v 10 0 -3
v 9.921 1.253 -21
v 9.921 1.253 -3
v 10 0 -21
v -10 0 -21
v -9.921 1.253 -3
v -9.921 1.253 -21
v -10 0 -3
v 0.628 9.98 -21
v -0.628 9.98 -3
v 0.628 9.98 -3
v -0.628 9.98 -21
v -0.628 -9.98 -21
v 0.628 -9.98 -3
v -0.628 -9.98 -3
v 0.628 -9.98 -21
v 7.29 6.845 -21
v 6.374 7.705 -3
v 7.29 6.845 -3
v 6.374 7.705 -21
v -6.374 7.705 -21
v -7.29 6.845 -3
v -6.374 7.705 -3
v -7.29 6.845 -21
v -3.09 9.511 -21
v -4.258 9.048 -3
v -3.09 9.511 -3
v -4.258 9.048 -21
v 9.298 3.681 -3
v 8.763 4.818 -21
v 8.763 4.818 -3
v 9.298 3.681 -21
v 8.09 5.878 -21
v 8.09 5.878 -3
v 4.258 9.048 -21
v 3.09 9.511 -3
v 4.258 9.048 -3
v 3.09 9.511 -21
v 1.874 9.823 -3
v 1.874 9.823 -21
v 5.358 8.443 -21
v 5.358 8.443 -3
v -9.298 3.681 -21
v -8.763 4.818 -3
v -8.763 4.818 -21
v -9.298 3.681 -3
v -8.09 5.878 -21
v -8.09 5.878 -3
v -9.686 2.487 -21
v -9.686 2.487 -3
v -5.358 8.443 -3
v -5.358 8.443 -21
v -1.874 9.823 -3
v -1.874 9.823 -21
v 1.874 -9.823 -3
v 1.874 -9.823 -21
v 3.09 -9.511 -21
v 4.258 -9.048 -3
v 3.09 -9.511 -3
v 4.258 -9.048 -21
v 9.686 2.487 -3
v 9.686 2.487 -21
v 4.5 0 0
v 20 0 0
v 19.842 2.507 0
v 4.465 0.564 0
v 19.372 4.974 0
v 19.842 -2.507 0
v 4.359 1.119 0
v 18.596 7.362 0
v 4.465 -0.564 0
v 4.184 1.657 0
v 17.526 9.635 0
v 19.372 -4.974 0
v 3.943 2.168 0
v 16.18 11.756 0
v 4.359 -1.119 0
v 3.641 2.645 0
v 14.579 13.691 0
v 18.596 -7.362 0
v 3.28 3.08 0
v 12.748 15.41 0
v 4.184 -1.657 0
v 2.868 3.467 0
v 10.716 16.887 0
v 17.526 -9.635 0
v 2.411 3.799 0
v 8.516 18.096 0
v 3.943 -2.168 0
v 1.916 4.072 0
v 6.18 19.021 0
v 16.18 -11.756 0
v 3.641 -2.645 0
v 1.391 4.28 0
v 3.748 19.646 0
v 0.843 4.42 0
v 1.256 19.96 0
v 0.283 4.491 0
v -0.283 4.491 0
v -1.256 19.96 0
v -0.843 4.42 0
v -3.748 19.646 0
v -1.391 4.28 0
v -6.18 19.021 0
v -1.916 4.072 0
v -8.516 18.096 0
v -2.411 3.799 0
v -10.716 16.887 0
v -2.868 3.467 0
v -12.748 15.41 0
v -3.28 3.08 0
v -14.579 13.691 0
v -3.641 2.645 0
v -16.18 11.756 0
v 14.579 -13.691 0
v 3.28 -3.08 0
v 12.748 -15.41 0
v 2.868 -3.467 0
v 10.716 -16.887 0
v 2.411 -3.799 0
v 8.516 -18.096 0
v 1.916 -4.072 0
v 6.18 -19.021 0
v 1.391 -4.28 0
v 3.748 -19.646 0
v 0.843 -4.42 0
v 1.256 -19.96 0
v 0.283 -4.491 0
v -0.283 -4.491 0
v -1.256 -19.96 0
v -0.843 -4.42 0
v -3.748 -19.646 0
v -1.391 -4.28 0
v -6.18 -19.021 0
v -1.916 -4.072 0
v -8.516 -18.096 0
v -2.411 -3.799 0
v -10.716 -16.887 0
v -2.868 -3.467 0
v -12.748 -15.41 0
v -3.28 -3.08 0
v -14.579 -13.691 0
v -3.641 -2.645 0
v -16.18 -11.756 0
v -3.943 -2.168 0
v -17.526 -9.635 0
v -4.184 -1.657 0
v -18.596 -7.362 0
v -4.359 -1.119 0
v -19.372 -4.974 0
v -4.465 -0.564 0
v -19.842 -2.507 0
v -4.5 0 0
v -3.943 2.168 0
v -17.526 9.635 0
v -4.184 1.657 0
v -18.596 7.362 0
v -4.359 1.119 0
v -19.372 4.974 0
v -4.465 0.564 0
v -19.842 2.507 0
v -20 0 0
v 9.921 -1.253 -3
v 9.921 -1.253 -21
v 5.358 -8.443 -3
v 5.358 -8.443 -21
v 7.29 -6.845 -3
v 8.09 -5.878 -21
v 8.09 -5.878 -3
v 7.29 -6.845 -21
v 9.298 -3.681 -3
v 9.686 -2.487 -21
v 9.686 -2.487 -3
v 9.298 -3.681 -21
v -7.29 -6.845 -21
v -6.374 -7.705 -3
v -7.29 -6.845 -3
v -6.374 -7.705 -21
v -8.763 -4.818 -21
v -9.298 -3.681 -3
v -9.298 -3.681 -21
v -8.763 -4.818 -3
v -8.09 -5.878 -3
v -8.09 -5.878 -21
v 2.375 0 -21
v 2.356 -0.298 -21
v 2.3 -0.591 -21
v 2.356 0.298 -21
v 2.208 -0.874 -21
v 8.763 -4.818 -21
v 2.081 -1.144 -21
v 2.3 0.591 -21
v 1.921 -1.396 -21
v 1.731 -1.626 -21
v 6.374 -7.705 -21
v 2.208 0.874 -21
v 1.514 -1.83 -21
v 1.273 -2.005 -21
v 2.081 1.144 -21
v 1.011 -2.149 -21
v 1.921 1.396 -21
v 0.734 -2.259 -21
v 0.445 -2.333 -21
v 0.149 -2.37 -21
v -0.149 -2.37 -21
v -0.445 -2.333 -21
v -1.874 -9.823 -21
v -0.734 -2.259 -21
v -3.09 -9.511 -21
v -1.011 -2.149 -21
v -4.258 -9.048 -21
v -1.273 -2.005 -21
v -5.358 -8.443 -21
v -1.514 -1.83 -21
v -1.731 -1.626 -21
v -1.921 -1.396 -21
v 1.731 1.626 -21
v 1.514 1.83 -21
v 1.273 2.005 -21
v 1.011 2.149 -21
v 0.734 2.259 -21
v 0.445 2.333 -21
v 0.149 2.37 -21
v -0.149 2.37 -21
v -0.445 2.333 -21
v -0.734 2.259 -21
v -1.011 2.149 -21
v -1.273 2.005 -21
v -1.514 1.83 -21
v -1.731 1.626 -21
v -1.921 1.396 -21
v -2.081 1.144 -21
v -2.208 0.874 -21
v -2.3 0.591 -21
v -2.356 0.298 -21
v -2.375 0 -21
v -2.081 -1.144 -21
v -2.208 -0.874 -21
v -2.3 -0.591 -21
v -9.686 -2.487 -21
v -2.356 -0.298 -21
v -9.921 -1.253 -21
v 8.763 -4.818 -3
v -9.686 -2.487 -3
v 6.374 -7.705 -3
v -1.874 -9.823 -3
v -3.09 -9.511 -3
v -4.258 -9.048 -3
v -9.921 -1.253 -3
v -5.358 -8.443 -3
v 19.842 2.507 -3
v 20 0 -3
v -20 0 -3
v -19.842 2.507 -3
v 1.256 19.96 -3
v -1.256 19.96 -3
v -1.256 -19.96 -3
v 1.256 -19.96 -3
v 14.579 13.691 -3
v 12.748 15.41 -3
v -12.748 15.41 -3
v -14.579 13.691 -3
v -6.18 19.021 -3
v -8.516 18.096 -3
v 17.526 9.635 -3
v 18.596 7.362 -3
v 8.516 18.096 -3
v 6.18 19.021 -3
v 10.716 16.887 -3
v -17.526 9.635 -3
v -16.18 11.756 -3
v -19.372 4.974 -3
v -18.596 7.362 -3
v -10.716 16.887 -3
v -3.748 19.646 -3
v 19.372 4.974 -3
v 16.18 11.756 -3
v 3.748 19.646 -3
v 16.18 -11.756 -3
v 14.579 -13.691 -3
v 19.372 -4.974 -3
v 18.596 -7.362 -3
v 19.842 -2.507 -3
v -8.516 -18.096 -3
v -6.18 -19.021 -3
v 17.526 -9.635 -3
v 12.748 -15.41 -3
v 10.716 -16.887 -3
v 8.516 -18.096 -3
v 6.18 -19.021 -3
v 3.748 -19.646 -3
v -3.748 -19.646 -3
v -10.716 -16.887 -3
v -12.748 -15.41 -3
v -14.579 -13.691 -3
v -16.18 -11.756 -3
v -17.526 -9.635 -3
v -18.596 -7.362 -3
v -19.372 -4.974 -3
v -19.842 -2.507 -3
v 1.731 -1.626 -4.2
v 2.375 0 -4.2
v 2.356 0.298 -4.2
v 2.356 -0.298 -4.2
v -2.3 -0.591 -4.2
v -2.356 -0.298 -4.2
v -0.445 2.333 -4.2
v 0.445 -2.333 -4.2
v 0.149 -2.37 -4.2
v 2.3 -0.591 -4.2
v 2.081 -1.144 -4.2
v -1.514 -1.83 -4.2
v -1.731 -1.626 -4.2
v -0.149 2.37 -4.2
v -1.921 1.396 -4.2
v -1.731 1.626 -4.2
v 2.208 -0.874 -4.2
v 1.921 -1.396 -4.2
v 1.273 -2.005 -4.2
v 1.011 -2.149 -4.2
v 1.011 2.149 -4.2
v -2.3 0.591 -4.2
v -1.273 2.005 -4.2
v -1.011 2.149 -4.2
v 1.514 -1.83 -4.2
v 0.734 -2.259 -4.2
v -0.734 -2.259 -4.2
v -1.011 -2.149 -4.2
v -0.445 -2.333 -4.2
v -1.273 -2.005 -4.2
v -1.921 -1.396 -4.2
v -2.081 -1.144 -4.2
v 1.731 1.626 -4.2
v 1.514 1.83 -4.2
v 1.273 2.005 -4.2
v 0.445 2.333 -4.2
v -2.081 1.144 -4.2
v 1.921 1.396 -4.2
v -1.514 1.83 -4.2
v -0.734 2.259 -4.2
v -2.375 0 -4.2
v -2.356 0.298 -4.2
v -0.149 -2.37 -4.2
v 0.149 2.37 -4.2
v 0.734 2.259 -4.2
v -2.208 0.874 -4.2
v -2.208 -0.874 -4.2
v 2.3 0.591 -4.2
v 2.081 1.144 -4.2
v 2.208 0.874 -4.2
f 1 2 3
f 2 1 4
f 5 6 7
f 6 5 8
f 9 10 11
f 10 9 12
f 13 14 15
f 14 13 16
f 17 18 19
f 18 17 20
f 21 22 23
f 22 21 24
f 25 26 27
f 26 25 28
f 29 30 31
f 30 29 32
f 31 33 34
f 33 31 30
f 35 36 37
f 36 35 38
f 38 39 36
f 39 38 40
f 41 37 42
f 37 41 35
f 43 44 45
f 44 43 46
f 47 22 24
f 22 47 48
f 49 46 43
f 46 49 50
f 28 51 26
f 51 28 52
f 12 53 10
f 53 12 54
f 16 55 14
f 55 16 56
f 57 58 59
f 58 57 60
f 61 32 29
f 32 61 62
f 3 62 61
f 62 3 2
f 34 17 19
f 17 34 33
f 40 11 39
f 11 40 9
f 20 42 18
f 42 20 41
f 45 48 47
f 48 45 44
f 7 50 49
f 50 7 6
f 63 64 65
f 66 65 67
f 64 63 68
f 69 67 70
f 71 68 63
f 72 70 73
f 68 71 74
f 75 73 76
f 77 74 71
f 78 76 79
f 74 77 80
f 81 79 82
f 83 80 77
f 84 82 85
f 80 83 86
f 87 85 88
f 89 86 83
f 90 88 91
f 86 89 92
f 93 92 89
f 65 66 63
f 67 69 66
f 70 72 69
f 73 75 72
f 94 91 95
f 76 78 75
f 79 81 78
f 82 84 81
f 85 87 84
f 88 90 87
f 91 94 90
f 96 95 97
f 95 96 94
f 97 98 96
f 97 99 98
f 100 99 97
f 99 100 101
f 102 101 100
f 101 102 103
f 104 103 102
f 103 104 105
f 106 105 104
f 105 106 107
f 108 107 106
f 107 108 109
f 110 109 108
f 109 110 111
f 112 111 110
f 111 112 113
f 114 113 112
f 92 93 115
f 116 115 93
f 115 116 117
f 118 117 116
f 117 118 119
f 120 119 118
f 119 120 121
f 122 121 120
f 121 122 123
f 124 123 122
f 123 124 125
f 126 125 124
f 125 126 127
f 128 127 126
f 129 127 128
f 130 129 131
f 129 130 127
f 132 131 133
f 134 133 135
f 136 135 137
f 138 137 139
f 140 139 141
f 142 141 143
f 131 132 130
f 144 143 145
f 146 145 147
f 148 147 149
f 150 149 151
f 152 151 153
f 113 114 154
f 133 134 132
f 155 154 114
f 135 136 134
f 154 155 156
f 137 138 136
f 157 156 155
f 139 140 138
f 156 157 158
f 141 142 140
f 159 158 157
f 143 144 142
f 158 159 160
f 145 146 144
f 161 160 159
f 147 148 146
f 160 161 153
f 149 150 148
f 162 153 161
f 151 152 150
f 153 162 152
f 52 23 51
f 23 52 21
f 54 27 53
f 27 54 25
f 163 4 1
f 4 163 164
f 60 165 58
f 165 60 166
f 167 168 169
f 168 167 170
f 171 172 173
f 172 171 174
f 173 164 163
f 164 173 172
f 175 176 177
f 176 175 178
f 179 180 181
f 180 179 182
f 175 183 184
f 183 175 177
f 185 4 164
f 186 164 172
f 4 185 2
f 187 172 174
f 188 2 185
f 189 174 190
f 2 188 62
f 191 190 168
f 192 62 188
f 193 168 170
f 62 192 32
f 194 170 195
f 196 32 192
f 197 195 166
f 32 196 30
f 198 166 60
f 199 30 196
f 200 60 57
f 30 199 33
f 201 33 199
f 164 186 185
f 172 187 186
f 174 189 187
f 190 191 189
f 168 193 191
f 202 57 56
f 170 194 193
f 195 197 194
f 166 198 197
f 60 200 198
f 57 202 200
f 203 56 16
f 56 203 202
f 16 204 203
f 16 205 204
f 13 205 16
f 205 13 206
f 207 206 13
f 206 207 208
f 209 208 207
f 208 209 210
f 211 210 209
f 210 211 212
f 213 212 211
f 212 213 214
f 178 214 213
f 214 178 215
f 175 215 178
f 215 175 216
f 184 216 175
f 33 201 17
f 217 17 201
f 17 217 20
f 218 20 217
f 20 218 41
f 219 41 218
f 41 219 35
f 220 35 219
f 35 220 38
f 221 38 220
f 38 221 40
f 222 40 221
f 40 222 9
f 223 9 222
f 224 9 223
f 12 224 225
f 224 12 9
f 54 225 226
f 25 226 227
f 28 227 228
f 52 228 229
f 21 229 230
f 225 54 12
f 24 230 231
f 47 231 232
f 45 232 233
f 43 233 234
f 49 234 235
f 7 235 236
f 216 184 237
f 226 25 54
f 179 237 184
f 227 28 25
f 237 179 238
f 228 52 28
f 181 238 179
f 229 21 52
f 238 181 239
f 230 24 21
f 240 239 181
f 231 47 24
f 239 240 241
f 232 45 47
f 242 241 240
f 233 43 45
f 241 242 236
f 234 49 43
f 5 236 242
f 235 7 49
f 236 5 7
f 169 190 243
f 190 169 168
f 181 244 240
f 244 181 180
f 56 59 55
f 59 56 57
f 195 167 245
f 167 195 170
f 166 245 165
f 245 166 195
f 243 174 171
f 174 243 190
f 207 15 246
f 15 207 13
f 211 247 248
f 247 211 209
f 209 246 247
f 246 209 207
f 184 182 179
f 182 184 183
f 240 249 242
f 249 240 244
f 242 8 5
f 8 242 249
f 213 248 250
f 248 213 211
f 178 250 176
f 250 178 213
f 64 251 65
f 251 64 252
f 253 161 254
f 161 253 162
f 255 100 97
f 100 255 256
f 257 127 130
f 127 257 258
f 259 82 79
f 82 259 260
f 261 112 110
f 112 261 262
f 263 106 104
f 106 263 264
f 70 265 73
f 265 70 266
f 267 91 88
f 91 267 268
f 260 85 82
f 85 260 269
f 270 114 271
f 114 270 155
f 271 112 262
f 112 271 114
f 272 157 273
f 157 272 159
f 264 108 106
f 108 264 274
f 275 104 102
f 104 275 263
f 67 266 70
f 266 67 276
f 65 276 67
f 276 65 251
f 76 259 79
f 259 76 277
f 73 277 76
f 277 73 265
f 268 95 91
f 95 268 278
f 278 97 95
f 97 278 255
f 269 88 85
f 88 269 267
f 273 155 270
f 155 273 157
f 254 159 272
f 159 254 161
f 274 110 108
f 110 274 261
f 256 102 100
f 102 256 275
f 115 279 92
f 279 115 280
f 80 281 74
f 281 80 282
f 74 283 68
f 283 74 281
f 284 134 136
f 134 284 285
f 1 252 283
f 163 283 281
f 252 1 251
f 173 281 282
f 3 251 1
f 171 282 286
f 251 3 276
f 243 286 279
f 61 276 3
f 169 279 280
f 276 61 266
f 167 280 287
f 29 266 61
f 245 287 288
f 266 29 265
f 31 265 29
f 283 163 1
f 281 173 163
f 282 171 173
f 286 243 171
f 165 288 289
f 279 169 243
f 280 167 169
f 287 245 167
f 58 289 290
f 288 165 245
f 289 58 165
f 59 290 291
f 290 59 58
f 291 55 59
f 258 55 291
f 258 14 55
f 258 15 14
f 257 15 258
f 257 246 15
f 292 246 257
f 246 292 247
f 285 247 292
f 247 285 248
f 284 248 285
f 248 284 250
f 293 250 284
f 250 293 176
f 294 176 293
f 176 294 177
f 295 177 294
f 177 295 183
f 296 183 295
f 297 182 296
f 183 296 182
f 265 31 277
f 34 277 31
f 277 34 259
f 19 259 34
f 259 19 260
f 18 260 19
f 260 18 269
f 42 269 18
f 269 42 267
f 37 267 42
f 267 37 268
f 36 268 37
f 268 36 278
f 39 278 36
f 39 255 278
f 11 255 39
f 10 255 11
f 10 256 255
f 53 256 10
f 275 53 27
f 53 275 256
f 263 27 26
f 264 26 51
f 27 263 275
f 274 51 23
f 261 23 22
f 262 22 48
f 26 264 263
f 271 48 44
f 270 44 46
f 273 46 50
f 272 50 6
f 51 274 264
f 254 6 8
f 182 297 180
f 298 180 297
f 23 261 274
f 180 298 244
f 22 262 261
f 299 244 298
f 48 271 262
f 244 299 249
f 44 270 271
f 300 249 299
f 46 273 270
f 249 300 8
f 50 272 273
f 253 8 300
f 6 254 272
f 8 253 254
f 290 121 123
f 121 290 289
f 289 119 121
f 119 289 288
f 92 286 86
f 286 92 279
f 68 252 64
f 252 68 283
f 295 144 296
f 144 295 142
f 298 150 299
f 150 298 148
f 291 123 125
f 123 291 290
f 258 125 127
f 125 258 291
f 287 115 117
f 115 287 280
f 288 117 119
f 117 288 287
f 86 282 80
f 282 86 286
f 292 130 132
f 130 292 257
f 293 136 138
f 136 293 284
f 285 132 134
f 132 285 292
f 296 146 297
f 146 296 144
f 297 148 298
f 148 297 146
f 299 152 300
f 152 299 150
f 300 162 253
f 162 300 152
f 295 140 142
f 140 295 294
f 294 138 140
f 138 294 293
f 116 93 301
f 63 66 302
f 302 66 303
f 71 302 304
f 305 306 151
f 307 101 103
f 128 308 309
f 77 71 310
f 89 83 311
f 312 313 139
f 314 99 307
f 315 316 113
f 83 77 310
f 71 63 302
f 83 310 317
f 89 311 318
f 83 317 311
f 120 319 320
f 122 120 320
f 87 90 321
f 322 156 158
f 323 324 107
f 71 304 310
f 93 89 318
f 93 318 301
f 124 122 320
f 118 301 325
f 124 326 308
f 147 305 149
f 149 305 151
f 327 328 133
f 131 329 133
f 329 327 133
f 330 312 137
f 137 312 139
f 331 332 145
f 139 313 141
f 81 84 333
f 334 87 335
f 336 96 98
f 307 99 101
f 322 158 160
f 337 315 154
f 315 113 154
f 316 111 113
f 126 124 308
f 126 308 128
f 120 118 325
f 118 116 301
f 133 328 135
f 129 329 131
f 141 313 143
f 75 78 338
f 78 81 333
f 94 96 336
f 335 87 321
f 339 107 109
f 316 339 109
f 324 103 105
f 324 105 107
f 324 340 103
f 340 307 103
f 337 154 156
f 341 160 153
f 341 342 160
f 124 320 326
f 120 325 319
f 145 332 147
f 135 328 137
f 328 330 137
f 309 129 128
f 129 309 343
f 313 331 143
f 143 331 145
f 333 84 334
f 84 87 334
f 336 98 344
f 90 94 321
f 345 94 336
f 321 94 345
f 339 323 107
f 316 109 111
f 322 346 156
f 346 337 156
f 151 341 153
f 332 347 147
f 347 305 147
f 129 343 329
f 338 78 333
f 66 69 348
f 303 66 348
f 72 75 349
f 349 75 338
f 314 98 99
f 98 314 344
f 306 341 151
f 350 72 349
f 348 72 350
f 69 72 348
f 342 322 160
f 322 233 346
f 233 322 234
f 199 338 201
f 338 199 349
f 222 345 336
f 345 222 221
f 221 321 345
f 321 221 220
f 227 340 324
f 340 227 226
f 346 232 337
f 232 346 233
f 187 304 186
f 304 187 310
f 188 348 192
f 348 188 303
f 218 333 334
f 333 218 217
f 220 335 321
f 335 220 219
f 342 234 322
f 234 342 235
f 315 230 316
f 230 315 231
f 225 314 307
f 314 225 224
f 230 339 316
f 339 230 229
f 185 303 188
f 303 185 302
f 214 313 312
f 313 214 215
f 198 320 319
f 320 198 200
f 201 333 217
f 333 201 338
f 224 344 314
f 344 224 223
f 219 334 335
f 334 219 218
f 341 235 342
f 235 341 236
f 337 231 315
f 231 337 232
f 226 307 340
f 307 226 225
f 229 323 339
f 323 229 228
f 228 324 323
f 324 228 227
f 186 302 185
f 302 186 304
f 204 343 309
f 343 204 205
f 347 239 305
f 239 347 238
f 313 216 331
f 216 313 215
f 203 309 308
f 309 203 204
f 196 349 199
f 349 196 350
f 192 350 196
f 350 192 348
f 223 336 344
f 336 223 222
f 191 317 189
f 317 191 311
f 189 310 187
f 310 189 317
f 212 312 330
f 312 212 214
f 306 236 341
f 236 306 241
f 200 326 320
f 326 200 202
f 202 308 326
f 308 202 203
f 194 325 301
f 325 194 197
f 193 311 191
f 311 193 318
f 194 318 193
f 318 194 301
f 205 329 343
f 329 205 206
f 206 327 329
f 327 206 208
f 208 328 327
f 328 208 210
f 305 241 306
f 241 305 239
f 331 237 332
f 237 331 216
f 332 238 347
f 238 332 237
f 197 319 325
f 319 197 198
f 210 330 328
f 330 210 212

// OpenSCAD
$fn = 50;


difference() {
	union() {
		translate(v = [0, 0, -21.0000000000]) {
			cylinder(h = 21, r = 10.0000000000);
		}
		translate(v = [0, 0, -3.0000000000]) {
			cylinder(h = 3, r = 20.0000000000);
		}
	}
	union() {
		translate(v = [0, 0, 0]) {
			rotate(a = [0, 0, 0]) {
				difference() {
					union() {
						#translate(v = [0, 0, -21.0000000000]) {
							cylinder(h = 21, r = 2.2500000000);
						}
						#translate(v = [0, 0, -4.2000000000]) {
							cylinder(h = 4.2000000000, r = 10.0000000000, r1 = 2.3750000000, r2 = 4.5000000000);
						}
						#translate(v = [0, 0, -21.0000000000]) {
							cylinder(h = 21, r = 2.3750000000);
						}
						#translate(v = [0, 0, -21.0000000000]) {
							cylinder(h = 21, r = 2.2500000000);
						}
					}
					union();
				}
			}
		}
	}
}
